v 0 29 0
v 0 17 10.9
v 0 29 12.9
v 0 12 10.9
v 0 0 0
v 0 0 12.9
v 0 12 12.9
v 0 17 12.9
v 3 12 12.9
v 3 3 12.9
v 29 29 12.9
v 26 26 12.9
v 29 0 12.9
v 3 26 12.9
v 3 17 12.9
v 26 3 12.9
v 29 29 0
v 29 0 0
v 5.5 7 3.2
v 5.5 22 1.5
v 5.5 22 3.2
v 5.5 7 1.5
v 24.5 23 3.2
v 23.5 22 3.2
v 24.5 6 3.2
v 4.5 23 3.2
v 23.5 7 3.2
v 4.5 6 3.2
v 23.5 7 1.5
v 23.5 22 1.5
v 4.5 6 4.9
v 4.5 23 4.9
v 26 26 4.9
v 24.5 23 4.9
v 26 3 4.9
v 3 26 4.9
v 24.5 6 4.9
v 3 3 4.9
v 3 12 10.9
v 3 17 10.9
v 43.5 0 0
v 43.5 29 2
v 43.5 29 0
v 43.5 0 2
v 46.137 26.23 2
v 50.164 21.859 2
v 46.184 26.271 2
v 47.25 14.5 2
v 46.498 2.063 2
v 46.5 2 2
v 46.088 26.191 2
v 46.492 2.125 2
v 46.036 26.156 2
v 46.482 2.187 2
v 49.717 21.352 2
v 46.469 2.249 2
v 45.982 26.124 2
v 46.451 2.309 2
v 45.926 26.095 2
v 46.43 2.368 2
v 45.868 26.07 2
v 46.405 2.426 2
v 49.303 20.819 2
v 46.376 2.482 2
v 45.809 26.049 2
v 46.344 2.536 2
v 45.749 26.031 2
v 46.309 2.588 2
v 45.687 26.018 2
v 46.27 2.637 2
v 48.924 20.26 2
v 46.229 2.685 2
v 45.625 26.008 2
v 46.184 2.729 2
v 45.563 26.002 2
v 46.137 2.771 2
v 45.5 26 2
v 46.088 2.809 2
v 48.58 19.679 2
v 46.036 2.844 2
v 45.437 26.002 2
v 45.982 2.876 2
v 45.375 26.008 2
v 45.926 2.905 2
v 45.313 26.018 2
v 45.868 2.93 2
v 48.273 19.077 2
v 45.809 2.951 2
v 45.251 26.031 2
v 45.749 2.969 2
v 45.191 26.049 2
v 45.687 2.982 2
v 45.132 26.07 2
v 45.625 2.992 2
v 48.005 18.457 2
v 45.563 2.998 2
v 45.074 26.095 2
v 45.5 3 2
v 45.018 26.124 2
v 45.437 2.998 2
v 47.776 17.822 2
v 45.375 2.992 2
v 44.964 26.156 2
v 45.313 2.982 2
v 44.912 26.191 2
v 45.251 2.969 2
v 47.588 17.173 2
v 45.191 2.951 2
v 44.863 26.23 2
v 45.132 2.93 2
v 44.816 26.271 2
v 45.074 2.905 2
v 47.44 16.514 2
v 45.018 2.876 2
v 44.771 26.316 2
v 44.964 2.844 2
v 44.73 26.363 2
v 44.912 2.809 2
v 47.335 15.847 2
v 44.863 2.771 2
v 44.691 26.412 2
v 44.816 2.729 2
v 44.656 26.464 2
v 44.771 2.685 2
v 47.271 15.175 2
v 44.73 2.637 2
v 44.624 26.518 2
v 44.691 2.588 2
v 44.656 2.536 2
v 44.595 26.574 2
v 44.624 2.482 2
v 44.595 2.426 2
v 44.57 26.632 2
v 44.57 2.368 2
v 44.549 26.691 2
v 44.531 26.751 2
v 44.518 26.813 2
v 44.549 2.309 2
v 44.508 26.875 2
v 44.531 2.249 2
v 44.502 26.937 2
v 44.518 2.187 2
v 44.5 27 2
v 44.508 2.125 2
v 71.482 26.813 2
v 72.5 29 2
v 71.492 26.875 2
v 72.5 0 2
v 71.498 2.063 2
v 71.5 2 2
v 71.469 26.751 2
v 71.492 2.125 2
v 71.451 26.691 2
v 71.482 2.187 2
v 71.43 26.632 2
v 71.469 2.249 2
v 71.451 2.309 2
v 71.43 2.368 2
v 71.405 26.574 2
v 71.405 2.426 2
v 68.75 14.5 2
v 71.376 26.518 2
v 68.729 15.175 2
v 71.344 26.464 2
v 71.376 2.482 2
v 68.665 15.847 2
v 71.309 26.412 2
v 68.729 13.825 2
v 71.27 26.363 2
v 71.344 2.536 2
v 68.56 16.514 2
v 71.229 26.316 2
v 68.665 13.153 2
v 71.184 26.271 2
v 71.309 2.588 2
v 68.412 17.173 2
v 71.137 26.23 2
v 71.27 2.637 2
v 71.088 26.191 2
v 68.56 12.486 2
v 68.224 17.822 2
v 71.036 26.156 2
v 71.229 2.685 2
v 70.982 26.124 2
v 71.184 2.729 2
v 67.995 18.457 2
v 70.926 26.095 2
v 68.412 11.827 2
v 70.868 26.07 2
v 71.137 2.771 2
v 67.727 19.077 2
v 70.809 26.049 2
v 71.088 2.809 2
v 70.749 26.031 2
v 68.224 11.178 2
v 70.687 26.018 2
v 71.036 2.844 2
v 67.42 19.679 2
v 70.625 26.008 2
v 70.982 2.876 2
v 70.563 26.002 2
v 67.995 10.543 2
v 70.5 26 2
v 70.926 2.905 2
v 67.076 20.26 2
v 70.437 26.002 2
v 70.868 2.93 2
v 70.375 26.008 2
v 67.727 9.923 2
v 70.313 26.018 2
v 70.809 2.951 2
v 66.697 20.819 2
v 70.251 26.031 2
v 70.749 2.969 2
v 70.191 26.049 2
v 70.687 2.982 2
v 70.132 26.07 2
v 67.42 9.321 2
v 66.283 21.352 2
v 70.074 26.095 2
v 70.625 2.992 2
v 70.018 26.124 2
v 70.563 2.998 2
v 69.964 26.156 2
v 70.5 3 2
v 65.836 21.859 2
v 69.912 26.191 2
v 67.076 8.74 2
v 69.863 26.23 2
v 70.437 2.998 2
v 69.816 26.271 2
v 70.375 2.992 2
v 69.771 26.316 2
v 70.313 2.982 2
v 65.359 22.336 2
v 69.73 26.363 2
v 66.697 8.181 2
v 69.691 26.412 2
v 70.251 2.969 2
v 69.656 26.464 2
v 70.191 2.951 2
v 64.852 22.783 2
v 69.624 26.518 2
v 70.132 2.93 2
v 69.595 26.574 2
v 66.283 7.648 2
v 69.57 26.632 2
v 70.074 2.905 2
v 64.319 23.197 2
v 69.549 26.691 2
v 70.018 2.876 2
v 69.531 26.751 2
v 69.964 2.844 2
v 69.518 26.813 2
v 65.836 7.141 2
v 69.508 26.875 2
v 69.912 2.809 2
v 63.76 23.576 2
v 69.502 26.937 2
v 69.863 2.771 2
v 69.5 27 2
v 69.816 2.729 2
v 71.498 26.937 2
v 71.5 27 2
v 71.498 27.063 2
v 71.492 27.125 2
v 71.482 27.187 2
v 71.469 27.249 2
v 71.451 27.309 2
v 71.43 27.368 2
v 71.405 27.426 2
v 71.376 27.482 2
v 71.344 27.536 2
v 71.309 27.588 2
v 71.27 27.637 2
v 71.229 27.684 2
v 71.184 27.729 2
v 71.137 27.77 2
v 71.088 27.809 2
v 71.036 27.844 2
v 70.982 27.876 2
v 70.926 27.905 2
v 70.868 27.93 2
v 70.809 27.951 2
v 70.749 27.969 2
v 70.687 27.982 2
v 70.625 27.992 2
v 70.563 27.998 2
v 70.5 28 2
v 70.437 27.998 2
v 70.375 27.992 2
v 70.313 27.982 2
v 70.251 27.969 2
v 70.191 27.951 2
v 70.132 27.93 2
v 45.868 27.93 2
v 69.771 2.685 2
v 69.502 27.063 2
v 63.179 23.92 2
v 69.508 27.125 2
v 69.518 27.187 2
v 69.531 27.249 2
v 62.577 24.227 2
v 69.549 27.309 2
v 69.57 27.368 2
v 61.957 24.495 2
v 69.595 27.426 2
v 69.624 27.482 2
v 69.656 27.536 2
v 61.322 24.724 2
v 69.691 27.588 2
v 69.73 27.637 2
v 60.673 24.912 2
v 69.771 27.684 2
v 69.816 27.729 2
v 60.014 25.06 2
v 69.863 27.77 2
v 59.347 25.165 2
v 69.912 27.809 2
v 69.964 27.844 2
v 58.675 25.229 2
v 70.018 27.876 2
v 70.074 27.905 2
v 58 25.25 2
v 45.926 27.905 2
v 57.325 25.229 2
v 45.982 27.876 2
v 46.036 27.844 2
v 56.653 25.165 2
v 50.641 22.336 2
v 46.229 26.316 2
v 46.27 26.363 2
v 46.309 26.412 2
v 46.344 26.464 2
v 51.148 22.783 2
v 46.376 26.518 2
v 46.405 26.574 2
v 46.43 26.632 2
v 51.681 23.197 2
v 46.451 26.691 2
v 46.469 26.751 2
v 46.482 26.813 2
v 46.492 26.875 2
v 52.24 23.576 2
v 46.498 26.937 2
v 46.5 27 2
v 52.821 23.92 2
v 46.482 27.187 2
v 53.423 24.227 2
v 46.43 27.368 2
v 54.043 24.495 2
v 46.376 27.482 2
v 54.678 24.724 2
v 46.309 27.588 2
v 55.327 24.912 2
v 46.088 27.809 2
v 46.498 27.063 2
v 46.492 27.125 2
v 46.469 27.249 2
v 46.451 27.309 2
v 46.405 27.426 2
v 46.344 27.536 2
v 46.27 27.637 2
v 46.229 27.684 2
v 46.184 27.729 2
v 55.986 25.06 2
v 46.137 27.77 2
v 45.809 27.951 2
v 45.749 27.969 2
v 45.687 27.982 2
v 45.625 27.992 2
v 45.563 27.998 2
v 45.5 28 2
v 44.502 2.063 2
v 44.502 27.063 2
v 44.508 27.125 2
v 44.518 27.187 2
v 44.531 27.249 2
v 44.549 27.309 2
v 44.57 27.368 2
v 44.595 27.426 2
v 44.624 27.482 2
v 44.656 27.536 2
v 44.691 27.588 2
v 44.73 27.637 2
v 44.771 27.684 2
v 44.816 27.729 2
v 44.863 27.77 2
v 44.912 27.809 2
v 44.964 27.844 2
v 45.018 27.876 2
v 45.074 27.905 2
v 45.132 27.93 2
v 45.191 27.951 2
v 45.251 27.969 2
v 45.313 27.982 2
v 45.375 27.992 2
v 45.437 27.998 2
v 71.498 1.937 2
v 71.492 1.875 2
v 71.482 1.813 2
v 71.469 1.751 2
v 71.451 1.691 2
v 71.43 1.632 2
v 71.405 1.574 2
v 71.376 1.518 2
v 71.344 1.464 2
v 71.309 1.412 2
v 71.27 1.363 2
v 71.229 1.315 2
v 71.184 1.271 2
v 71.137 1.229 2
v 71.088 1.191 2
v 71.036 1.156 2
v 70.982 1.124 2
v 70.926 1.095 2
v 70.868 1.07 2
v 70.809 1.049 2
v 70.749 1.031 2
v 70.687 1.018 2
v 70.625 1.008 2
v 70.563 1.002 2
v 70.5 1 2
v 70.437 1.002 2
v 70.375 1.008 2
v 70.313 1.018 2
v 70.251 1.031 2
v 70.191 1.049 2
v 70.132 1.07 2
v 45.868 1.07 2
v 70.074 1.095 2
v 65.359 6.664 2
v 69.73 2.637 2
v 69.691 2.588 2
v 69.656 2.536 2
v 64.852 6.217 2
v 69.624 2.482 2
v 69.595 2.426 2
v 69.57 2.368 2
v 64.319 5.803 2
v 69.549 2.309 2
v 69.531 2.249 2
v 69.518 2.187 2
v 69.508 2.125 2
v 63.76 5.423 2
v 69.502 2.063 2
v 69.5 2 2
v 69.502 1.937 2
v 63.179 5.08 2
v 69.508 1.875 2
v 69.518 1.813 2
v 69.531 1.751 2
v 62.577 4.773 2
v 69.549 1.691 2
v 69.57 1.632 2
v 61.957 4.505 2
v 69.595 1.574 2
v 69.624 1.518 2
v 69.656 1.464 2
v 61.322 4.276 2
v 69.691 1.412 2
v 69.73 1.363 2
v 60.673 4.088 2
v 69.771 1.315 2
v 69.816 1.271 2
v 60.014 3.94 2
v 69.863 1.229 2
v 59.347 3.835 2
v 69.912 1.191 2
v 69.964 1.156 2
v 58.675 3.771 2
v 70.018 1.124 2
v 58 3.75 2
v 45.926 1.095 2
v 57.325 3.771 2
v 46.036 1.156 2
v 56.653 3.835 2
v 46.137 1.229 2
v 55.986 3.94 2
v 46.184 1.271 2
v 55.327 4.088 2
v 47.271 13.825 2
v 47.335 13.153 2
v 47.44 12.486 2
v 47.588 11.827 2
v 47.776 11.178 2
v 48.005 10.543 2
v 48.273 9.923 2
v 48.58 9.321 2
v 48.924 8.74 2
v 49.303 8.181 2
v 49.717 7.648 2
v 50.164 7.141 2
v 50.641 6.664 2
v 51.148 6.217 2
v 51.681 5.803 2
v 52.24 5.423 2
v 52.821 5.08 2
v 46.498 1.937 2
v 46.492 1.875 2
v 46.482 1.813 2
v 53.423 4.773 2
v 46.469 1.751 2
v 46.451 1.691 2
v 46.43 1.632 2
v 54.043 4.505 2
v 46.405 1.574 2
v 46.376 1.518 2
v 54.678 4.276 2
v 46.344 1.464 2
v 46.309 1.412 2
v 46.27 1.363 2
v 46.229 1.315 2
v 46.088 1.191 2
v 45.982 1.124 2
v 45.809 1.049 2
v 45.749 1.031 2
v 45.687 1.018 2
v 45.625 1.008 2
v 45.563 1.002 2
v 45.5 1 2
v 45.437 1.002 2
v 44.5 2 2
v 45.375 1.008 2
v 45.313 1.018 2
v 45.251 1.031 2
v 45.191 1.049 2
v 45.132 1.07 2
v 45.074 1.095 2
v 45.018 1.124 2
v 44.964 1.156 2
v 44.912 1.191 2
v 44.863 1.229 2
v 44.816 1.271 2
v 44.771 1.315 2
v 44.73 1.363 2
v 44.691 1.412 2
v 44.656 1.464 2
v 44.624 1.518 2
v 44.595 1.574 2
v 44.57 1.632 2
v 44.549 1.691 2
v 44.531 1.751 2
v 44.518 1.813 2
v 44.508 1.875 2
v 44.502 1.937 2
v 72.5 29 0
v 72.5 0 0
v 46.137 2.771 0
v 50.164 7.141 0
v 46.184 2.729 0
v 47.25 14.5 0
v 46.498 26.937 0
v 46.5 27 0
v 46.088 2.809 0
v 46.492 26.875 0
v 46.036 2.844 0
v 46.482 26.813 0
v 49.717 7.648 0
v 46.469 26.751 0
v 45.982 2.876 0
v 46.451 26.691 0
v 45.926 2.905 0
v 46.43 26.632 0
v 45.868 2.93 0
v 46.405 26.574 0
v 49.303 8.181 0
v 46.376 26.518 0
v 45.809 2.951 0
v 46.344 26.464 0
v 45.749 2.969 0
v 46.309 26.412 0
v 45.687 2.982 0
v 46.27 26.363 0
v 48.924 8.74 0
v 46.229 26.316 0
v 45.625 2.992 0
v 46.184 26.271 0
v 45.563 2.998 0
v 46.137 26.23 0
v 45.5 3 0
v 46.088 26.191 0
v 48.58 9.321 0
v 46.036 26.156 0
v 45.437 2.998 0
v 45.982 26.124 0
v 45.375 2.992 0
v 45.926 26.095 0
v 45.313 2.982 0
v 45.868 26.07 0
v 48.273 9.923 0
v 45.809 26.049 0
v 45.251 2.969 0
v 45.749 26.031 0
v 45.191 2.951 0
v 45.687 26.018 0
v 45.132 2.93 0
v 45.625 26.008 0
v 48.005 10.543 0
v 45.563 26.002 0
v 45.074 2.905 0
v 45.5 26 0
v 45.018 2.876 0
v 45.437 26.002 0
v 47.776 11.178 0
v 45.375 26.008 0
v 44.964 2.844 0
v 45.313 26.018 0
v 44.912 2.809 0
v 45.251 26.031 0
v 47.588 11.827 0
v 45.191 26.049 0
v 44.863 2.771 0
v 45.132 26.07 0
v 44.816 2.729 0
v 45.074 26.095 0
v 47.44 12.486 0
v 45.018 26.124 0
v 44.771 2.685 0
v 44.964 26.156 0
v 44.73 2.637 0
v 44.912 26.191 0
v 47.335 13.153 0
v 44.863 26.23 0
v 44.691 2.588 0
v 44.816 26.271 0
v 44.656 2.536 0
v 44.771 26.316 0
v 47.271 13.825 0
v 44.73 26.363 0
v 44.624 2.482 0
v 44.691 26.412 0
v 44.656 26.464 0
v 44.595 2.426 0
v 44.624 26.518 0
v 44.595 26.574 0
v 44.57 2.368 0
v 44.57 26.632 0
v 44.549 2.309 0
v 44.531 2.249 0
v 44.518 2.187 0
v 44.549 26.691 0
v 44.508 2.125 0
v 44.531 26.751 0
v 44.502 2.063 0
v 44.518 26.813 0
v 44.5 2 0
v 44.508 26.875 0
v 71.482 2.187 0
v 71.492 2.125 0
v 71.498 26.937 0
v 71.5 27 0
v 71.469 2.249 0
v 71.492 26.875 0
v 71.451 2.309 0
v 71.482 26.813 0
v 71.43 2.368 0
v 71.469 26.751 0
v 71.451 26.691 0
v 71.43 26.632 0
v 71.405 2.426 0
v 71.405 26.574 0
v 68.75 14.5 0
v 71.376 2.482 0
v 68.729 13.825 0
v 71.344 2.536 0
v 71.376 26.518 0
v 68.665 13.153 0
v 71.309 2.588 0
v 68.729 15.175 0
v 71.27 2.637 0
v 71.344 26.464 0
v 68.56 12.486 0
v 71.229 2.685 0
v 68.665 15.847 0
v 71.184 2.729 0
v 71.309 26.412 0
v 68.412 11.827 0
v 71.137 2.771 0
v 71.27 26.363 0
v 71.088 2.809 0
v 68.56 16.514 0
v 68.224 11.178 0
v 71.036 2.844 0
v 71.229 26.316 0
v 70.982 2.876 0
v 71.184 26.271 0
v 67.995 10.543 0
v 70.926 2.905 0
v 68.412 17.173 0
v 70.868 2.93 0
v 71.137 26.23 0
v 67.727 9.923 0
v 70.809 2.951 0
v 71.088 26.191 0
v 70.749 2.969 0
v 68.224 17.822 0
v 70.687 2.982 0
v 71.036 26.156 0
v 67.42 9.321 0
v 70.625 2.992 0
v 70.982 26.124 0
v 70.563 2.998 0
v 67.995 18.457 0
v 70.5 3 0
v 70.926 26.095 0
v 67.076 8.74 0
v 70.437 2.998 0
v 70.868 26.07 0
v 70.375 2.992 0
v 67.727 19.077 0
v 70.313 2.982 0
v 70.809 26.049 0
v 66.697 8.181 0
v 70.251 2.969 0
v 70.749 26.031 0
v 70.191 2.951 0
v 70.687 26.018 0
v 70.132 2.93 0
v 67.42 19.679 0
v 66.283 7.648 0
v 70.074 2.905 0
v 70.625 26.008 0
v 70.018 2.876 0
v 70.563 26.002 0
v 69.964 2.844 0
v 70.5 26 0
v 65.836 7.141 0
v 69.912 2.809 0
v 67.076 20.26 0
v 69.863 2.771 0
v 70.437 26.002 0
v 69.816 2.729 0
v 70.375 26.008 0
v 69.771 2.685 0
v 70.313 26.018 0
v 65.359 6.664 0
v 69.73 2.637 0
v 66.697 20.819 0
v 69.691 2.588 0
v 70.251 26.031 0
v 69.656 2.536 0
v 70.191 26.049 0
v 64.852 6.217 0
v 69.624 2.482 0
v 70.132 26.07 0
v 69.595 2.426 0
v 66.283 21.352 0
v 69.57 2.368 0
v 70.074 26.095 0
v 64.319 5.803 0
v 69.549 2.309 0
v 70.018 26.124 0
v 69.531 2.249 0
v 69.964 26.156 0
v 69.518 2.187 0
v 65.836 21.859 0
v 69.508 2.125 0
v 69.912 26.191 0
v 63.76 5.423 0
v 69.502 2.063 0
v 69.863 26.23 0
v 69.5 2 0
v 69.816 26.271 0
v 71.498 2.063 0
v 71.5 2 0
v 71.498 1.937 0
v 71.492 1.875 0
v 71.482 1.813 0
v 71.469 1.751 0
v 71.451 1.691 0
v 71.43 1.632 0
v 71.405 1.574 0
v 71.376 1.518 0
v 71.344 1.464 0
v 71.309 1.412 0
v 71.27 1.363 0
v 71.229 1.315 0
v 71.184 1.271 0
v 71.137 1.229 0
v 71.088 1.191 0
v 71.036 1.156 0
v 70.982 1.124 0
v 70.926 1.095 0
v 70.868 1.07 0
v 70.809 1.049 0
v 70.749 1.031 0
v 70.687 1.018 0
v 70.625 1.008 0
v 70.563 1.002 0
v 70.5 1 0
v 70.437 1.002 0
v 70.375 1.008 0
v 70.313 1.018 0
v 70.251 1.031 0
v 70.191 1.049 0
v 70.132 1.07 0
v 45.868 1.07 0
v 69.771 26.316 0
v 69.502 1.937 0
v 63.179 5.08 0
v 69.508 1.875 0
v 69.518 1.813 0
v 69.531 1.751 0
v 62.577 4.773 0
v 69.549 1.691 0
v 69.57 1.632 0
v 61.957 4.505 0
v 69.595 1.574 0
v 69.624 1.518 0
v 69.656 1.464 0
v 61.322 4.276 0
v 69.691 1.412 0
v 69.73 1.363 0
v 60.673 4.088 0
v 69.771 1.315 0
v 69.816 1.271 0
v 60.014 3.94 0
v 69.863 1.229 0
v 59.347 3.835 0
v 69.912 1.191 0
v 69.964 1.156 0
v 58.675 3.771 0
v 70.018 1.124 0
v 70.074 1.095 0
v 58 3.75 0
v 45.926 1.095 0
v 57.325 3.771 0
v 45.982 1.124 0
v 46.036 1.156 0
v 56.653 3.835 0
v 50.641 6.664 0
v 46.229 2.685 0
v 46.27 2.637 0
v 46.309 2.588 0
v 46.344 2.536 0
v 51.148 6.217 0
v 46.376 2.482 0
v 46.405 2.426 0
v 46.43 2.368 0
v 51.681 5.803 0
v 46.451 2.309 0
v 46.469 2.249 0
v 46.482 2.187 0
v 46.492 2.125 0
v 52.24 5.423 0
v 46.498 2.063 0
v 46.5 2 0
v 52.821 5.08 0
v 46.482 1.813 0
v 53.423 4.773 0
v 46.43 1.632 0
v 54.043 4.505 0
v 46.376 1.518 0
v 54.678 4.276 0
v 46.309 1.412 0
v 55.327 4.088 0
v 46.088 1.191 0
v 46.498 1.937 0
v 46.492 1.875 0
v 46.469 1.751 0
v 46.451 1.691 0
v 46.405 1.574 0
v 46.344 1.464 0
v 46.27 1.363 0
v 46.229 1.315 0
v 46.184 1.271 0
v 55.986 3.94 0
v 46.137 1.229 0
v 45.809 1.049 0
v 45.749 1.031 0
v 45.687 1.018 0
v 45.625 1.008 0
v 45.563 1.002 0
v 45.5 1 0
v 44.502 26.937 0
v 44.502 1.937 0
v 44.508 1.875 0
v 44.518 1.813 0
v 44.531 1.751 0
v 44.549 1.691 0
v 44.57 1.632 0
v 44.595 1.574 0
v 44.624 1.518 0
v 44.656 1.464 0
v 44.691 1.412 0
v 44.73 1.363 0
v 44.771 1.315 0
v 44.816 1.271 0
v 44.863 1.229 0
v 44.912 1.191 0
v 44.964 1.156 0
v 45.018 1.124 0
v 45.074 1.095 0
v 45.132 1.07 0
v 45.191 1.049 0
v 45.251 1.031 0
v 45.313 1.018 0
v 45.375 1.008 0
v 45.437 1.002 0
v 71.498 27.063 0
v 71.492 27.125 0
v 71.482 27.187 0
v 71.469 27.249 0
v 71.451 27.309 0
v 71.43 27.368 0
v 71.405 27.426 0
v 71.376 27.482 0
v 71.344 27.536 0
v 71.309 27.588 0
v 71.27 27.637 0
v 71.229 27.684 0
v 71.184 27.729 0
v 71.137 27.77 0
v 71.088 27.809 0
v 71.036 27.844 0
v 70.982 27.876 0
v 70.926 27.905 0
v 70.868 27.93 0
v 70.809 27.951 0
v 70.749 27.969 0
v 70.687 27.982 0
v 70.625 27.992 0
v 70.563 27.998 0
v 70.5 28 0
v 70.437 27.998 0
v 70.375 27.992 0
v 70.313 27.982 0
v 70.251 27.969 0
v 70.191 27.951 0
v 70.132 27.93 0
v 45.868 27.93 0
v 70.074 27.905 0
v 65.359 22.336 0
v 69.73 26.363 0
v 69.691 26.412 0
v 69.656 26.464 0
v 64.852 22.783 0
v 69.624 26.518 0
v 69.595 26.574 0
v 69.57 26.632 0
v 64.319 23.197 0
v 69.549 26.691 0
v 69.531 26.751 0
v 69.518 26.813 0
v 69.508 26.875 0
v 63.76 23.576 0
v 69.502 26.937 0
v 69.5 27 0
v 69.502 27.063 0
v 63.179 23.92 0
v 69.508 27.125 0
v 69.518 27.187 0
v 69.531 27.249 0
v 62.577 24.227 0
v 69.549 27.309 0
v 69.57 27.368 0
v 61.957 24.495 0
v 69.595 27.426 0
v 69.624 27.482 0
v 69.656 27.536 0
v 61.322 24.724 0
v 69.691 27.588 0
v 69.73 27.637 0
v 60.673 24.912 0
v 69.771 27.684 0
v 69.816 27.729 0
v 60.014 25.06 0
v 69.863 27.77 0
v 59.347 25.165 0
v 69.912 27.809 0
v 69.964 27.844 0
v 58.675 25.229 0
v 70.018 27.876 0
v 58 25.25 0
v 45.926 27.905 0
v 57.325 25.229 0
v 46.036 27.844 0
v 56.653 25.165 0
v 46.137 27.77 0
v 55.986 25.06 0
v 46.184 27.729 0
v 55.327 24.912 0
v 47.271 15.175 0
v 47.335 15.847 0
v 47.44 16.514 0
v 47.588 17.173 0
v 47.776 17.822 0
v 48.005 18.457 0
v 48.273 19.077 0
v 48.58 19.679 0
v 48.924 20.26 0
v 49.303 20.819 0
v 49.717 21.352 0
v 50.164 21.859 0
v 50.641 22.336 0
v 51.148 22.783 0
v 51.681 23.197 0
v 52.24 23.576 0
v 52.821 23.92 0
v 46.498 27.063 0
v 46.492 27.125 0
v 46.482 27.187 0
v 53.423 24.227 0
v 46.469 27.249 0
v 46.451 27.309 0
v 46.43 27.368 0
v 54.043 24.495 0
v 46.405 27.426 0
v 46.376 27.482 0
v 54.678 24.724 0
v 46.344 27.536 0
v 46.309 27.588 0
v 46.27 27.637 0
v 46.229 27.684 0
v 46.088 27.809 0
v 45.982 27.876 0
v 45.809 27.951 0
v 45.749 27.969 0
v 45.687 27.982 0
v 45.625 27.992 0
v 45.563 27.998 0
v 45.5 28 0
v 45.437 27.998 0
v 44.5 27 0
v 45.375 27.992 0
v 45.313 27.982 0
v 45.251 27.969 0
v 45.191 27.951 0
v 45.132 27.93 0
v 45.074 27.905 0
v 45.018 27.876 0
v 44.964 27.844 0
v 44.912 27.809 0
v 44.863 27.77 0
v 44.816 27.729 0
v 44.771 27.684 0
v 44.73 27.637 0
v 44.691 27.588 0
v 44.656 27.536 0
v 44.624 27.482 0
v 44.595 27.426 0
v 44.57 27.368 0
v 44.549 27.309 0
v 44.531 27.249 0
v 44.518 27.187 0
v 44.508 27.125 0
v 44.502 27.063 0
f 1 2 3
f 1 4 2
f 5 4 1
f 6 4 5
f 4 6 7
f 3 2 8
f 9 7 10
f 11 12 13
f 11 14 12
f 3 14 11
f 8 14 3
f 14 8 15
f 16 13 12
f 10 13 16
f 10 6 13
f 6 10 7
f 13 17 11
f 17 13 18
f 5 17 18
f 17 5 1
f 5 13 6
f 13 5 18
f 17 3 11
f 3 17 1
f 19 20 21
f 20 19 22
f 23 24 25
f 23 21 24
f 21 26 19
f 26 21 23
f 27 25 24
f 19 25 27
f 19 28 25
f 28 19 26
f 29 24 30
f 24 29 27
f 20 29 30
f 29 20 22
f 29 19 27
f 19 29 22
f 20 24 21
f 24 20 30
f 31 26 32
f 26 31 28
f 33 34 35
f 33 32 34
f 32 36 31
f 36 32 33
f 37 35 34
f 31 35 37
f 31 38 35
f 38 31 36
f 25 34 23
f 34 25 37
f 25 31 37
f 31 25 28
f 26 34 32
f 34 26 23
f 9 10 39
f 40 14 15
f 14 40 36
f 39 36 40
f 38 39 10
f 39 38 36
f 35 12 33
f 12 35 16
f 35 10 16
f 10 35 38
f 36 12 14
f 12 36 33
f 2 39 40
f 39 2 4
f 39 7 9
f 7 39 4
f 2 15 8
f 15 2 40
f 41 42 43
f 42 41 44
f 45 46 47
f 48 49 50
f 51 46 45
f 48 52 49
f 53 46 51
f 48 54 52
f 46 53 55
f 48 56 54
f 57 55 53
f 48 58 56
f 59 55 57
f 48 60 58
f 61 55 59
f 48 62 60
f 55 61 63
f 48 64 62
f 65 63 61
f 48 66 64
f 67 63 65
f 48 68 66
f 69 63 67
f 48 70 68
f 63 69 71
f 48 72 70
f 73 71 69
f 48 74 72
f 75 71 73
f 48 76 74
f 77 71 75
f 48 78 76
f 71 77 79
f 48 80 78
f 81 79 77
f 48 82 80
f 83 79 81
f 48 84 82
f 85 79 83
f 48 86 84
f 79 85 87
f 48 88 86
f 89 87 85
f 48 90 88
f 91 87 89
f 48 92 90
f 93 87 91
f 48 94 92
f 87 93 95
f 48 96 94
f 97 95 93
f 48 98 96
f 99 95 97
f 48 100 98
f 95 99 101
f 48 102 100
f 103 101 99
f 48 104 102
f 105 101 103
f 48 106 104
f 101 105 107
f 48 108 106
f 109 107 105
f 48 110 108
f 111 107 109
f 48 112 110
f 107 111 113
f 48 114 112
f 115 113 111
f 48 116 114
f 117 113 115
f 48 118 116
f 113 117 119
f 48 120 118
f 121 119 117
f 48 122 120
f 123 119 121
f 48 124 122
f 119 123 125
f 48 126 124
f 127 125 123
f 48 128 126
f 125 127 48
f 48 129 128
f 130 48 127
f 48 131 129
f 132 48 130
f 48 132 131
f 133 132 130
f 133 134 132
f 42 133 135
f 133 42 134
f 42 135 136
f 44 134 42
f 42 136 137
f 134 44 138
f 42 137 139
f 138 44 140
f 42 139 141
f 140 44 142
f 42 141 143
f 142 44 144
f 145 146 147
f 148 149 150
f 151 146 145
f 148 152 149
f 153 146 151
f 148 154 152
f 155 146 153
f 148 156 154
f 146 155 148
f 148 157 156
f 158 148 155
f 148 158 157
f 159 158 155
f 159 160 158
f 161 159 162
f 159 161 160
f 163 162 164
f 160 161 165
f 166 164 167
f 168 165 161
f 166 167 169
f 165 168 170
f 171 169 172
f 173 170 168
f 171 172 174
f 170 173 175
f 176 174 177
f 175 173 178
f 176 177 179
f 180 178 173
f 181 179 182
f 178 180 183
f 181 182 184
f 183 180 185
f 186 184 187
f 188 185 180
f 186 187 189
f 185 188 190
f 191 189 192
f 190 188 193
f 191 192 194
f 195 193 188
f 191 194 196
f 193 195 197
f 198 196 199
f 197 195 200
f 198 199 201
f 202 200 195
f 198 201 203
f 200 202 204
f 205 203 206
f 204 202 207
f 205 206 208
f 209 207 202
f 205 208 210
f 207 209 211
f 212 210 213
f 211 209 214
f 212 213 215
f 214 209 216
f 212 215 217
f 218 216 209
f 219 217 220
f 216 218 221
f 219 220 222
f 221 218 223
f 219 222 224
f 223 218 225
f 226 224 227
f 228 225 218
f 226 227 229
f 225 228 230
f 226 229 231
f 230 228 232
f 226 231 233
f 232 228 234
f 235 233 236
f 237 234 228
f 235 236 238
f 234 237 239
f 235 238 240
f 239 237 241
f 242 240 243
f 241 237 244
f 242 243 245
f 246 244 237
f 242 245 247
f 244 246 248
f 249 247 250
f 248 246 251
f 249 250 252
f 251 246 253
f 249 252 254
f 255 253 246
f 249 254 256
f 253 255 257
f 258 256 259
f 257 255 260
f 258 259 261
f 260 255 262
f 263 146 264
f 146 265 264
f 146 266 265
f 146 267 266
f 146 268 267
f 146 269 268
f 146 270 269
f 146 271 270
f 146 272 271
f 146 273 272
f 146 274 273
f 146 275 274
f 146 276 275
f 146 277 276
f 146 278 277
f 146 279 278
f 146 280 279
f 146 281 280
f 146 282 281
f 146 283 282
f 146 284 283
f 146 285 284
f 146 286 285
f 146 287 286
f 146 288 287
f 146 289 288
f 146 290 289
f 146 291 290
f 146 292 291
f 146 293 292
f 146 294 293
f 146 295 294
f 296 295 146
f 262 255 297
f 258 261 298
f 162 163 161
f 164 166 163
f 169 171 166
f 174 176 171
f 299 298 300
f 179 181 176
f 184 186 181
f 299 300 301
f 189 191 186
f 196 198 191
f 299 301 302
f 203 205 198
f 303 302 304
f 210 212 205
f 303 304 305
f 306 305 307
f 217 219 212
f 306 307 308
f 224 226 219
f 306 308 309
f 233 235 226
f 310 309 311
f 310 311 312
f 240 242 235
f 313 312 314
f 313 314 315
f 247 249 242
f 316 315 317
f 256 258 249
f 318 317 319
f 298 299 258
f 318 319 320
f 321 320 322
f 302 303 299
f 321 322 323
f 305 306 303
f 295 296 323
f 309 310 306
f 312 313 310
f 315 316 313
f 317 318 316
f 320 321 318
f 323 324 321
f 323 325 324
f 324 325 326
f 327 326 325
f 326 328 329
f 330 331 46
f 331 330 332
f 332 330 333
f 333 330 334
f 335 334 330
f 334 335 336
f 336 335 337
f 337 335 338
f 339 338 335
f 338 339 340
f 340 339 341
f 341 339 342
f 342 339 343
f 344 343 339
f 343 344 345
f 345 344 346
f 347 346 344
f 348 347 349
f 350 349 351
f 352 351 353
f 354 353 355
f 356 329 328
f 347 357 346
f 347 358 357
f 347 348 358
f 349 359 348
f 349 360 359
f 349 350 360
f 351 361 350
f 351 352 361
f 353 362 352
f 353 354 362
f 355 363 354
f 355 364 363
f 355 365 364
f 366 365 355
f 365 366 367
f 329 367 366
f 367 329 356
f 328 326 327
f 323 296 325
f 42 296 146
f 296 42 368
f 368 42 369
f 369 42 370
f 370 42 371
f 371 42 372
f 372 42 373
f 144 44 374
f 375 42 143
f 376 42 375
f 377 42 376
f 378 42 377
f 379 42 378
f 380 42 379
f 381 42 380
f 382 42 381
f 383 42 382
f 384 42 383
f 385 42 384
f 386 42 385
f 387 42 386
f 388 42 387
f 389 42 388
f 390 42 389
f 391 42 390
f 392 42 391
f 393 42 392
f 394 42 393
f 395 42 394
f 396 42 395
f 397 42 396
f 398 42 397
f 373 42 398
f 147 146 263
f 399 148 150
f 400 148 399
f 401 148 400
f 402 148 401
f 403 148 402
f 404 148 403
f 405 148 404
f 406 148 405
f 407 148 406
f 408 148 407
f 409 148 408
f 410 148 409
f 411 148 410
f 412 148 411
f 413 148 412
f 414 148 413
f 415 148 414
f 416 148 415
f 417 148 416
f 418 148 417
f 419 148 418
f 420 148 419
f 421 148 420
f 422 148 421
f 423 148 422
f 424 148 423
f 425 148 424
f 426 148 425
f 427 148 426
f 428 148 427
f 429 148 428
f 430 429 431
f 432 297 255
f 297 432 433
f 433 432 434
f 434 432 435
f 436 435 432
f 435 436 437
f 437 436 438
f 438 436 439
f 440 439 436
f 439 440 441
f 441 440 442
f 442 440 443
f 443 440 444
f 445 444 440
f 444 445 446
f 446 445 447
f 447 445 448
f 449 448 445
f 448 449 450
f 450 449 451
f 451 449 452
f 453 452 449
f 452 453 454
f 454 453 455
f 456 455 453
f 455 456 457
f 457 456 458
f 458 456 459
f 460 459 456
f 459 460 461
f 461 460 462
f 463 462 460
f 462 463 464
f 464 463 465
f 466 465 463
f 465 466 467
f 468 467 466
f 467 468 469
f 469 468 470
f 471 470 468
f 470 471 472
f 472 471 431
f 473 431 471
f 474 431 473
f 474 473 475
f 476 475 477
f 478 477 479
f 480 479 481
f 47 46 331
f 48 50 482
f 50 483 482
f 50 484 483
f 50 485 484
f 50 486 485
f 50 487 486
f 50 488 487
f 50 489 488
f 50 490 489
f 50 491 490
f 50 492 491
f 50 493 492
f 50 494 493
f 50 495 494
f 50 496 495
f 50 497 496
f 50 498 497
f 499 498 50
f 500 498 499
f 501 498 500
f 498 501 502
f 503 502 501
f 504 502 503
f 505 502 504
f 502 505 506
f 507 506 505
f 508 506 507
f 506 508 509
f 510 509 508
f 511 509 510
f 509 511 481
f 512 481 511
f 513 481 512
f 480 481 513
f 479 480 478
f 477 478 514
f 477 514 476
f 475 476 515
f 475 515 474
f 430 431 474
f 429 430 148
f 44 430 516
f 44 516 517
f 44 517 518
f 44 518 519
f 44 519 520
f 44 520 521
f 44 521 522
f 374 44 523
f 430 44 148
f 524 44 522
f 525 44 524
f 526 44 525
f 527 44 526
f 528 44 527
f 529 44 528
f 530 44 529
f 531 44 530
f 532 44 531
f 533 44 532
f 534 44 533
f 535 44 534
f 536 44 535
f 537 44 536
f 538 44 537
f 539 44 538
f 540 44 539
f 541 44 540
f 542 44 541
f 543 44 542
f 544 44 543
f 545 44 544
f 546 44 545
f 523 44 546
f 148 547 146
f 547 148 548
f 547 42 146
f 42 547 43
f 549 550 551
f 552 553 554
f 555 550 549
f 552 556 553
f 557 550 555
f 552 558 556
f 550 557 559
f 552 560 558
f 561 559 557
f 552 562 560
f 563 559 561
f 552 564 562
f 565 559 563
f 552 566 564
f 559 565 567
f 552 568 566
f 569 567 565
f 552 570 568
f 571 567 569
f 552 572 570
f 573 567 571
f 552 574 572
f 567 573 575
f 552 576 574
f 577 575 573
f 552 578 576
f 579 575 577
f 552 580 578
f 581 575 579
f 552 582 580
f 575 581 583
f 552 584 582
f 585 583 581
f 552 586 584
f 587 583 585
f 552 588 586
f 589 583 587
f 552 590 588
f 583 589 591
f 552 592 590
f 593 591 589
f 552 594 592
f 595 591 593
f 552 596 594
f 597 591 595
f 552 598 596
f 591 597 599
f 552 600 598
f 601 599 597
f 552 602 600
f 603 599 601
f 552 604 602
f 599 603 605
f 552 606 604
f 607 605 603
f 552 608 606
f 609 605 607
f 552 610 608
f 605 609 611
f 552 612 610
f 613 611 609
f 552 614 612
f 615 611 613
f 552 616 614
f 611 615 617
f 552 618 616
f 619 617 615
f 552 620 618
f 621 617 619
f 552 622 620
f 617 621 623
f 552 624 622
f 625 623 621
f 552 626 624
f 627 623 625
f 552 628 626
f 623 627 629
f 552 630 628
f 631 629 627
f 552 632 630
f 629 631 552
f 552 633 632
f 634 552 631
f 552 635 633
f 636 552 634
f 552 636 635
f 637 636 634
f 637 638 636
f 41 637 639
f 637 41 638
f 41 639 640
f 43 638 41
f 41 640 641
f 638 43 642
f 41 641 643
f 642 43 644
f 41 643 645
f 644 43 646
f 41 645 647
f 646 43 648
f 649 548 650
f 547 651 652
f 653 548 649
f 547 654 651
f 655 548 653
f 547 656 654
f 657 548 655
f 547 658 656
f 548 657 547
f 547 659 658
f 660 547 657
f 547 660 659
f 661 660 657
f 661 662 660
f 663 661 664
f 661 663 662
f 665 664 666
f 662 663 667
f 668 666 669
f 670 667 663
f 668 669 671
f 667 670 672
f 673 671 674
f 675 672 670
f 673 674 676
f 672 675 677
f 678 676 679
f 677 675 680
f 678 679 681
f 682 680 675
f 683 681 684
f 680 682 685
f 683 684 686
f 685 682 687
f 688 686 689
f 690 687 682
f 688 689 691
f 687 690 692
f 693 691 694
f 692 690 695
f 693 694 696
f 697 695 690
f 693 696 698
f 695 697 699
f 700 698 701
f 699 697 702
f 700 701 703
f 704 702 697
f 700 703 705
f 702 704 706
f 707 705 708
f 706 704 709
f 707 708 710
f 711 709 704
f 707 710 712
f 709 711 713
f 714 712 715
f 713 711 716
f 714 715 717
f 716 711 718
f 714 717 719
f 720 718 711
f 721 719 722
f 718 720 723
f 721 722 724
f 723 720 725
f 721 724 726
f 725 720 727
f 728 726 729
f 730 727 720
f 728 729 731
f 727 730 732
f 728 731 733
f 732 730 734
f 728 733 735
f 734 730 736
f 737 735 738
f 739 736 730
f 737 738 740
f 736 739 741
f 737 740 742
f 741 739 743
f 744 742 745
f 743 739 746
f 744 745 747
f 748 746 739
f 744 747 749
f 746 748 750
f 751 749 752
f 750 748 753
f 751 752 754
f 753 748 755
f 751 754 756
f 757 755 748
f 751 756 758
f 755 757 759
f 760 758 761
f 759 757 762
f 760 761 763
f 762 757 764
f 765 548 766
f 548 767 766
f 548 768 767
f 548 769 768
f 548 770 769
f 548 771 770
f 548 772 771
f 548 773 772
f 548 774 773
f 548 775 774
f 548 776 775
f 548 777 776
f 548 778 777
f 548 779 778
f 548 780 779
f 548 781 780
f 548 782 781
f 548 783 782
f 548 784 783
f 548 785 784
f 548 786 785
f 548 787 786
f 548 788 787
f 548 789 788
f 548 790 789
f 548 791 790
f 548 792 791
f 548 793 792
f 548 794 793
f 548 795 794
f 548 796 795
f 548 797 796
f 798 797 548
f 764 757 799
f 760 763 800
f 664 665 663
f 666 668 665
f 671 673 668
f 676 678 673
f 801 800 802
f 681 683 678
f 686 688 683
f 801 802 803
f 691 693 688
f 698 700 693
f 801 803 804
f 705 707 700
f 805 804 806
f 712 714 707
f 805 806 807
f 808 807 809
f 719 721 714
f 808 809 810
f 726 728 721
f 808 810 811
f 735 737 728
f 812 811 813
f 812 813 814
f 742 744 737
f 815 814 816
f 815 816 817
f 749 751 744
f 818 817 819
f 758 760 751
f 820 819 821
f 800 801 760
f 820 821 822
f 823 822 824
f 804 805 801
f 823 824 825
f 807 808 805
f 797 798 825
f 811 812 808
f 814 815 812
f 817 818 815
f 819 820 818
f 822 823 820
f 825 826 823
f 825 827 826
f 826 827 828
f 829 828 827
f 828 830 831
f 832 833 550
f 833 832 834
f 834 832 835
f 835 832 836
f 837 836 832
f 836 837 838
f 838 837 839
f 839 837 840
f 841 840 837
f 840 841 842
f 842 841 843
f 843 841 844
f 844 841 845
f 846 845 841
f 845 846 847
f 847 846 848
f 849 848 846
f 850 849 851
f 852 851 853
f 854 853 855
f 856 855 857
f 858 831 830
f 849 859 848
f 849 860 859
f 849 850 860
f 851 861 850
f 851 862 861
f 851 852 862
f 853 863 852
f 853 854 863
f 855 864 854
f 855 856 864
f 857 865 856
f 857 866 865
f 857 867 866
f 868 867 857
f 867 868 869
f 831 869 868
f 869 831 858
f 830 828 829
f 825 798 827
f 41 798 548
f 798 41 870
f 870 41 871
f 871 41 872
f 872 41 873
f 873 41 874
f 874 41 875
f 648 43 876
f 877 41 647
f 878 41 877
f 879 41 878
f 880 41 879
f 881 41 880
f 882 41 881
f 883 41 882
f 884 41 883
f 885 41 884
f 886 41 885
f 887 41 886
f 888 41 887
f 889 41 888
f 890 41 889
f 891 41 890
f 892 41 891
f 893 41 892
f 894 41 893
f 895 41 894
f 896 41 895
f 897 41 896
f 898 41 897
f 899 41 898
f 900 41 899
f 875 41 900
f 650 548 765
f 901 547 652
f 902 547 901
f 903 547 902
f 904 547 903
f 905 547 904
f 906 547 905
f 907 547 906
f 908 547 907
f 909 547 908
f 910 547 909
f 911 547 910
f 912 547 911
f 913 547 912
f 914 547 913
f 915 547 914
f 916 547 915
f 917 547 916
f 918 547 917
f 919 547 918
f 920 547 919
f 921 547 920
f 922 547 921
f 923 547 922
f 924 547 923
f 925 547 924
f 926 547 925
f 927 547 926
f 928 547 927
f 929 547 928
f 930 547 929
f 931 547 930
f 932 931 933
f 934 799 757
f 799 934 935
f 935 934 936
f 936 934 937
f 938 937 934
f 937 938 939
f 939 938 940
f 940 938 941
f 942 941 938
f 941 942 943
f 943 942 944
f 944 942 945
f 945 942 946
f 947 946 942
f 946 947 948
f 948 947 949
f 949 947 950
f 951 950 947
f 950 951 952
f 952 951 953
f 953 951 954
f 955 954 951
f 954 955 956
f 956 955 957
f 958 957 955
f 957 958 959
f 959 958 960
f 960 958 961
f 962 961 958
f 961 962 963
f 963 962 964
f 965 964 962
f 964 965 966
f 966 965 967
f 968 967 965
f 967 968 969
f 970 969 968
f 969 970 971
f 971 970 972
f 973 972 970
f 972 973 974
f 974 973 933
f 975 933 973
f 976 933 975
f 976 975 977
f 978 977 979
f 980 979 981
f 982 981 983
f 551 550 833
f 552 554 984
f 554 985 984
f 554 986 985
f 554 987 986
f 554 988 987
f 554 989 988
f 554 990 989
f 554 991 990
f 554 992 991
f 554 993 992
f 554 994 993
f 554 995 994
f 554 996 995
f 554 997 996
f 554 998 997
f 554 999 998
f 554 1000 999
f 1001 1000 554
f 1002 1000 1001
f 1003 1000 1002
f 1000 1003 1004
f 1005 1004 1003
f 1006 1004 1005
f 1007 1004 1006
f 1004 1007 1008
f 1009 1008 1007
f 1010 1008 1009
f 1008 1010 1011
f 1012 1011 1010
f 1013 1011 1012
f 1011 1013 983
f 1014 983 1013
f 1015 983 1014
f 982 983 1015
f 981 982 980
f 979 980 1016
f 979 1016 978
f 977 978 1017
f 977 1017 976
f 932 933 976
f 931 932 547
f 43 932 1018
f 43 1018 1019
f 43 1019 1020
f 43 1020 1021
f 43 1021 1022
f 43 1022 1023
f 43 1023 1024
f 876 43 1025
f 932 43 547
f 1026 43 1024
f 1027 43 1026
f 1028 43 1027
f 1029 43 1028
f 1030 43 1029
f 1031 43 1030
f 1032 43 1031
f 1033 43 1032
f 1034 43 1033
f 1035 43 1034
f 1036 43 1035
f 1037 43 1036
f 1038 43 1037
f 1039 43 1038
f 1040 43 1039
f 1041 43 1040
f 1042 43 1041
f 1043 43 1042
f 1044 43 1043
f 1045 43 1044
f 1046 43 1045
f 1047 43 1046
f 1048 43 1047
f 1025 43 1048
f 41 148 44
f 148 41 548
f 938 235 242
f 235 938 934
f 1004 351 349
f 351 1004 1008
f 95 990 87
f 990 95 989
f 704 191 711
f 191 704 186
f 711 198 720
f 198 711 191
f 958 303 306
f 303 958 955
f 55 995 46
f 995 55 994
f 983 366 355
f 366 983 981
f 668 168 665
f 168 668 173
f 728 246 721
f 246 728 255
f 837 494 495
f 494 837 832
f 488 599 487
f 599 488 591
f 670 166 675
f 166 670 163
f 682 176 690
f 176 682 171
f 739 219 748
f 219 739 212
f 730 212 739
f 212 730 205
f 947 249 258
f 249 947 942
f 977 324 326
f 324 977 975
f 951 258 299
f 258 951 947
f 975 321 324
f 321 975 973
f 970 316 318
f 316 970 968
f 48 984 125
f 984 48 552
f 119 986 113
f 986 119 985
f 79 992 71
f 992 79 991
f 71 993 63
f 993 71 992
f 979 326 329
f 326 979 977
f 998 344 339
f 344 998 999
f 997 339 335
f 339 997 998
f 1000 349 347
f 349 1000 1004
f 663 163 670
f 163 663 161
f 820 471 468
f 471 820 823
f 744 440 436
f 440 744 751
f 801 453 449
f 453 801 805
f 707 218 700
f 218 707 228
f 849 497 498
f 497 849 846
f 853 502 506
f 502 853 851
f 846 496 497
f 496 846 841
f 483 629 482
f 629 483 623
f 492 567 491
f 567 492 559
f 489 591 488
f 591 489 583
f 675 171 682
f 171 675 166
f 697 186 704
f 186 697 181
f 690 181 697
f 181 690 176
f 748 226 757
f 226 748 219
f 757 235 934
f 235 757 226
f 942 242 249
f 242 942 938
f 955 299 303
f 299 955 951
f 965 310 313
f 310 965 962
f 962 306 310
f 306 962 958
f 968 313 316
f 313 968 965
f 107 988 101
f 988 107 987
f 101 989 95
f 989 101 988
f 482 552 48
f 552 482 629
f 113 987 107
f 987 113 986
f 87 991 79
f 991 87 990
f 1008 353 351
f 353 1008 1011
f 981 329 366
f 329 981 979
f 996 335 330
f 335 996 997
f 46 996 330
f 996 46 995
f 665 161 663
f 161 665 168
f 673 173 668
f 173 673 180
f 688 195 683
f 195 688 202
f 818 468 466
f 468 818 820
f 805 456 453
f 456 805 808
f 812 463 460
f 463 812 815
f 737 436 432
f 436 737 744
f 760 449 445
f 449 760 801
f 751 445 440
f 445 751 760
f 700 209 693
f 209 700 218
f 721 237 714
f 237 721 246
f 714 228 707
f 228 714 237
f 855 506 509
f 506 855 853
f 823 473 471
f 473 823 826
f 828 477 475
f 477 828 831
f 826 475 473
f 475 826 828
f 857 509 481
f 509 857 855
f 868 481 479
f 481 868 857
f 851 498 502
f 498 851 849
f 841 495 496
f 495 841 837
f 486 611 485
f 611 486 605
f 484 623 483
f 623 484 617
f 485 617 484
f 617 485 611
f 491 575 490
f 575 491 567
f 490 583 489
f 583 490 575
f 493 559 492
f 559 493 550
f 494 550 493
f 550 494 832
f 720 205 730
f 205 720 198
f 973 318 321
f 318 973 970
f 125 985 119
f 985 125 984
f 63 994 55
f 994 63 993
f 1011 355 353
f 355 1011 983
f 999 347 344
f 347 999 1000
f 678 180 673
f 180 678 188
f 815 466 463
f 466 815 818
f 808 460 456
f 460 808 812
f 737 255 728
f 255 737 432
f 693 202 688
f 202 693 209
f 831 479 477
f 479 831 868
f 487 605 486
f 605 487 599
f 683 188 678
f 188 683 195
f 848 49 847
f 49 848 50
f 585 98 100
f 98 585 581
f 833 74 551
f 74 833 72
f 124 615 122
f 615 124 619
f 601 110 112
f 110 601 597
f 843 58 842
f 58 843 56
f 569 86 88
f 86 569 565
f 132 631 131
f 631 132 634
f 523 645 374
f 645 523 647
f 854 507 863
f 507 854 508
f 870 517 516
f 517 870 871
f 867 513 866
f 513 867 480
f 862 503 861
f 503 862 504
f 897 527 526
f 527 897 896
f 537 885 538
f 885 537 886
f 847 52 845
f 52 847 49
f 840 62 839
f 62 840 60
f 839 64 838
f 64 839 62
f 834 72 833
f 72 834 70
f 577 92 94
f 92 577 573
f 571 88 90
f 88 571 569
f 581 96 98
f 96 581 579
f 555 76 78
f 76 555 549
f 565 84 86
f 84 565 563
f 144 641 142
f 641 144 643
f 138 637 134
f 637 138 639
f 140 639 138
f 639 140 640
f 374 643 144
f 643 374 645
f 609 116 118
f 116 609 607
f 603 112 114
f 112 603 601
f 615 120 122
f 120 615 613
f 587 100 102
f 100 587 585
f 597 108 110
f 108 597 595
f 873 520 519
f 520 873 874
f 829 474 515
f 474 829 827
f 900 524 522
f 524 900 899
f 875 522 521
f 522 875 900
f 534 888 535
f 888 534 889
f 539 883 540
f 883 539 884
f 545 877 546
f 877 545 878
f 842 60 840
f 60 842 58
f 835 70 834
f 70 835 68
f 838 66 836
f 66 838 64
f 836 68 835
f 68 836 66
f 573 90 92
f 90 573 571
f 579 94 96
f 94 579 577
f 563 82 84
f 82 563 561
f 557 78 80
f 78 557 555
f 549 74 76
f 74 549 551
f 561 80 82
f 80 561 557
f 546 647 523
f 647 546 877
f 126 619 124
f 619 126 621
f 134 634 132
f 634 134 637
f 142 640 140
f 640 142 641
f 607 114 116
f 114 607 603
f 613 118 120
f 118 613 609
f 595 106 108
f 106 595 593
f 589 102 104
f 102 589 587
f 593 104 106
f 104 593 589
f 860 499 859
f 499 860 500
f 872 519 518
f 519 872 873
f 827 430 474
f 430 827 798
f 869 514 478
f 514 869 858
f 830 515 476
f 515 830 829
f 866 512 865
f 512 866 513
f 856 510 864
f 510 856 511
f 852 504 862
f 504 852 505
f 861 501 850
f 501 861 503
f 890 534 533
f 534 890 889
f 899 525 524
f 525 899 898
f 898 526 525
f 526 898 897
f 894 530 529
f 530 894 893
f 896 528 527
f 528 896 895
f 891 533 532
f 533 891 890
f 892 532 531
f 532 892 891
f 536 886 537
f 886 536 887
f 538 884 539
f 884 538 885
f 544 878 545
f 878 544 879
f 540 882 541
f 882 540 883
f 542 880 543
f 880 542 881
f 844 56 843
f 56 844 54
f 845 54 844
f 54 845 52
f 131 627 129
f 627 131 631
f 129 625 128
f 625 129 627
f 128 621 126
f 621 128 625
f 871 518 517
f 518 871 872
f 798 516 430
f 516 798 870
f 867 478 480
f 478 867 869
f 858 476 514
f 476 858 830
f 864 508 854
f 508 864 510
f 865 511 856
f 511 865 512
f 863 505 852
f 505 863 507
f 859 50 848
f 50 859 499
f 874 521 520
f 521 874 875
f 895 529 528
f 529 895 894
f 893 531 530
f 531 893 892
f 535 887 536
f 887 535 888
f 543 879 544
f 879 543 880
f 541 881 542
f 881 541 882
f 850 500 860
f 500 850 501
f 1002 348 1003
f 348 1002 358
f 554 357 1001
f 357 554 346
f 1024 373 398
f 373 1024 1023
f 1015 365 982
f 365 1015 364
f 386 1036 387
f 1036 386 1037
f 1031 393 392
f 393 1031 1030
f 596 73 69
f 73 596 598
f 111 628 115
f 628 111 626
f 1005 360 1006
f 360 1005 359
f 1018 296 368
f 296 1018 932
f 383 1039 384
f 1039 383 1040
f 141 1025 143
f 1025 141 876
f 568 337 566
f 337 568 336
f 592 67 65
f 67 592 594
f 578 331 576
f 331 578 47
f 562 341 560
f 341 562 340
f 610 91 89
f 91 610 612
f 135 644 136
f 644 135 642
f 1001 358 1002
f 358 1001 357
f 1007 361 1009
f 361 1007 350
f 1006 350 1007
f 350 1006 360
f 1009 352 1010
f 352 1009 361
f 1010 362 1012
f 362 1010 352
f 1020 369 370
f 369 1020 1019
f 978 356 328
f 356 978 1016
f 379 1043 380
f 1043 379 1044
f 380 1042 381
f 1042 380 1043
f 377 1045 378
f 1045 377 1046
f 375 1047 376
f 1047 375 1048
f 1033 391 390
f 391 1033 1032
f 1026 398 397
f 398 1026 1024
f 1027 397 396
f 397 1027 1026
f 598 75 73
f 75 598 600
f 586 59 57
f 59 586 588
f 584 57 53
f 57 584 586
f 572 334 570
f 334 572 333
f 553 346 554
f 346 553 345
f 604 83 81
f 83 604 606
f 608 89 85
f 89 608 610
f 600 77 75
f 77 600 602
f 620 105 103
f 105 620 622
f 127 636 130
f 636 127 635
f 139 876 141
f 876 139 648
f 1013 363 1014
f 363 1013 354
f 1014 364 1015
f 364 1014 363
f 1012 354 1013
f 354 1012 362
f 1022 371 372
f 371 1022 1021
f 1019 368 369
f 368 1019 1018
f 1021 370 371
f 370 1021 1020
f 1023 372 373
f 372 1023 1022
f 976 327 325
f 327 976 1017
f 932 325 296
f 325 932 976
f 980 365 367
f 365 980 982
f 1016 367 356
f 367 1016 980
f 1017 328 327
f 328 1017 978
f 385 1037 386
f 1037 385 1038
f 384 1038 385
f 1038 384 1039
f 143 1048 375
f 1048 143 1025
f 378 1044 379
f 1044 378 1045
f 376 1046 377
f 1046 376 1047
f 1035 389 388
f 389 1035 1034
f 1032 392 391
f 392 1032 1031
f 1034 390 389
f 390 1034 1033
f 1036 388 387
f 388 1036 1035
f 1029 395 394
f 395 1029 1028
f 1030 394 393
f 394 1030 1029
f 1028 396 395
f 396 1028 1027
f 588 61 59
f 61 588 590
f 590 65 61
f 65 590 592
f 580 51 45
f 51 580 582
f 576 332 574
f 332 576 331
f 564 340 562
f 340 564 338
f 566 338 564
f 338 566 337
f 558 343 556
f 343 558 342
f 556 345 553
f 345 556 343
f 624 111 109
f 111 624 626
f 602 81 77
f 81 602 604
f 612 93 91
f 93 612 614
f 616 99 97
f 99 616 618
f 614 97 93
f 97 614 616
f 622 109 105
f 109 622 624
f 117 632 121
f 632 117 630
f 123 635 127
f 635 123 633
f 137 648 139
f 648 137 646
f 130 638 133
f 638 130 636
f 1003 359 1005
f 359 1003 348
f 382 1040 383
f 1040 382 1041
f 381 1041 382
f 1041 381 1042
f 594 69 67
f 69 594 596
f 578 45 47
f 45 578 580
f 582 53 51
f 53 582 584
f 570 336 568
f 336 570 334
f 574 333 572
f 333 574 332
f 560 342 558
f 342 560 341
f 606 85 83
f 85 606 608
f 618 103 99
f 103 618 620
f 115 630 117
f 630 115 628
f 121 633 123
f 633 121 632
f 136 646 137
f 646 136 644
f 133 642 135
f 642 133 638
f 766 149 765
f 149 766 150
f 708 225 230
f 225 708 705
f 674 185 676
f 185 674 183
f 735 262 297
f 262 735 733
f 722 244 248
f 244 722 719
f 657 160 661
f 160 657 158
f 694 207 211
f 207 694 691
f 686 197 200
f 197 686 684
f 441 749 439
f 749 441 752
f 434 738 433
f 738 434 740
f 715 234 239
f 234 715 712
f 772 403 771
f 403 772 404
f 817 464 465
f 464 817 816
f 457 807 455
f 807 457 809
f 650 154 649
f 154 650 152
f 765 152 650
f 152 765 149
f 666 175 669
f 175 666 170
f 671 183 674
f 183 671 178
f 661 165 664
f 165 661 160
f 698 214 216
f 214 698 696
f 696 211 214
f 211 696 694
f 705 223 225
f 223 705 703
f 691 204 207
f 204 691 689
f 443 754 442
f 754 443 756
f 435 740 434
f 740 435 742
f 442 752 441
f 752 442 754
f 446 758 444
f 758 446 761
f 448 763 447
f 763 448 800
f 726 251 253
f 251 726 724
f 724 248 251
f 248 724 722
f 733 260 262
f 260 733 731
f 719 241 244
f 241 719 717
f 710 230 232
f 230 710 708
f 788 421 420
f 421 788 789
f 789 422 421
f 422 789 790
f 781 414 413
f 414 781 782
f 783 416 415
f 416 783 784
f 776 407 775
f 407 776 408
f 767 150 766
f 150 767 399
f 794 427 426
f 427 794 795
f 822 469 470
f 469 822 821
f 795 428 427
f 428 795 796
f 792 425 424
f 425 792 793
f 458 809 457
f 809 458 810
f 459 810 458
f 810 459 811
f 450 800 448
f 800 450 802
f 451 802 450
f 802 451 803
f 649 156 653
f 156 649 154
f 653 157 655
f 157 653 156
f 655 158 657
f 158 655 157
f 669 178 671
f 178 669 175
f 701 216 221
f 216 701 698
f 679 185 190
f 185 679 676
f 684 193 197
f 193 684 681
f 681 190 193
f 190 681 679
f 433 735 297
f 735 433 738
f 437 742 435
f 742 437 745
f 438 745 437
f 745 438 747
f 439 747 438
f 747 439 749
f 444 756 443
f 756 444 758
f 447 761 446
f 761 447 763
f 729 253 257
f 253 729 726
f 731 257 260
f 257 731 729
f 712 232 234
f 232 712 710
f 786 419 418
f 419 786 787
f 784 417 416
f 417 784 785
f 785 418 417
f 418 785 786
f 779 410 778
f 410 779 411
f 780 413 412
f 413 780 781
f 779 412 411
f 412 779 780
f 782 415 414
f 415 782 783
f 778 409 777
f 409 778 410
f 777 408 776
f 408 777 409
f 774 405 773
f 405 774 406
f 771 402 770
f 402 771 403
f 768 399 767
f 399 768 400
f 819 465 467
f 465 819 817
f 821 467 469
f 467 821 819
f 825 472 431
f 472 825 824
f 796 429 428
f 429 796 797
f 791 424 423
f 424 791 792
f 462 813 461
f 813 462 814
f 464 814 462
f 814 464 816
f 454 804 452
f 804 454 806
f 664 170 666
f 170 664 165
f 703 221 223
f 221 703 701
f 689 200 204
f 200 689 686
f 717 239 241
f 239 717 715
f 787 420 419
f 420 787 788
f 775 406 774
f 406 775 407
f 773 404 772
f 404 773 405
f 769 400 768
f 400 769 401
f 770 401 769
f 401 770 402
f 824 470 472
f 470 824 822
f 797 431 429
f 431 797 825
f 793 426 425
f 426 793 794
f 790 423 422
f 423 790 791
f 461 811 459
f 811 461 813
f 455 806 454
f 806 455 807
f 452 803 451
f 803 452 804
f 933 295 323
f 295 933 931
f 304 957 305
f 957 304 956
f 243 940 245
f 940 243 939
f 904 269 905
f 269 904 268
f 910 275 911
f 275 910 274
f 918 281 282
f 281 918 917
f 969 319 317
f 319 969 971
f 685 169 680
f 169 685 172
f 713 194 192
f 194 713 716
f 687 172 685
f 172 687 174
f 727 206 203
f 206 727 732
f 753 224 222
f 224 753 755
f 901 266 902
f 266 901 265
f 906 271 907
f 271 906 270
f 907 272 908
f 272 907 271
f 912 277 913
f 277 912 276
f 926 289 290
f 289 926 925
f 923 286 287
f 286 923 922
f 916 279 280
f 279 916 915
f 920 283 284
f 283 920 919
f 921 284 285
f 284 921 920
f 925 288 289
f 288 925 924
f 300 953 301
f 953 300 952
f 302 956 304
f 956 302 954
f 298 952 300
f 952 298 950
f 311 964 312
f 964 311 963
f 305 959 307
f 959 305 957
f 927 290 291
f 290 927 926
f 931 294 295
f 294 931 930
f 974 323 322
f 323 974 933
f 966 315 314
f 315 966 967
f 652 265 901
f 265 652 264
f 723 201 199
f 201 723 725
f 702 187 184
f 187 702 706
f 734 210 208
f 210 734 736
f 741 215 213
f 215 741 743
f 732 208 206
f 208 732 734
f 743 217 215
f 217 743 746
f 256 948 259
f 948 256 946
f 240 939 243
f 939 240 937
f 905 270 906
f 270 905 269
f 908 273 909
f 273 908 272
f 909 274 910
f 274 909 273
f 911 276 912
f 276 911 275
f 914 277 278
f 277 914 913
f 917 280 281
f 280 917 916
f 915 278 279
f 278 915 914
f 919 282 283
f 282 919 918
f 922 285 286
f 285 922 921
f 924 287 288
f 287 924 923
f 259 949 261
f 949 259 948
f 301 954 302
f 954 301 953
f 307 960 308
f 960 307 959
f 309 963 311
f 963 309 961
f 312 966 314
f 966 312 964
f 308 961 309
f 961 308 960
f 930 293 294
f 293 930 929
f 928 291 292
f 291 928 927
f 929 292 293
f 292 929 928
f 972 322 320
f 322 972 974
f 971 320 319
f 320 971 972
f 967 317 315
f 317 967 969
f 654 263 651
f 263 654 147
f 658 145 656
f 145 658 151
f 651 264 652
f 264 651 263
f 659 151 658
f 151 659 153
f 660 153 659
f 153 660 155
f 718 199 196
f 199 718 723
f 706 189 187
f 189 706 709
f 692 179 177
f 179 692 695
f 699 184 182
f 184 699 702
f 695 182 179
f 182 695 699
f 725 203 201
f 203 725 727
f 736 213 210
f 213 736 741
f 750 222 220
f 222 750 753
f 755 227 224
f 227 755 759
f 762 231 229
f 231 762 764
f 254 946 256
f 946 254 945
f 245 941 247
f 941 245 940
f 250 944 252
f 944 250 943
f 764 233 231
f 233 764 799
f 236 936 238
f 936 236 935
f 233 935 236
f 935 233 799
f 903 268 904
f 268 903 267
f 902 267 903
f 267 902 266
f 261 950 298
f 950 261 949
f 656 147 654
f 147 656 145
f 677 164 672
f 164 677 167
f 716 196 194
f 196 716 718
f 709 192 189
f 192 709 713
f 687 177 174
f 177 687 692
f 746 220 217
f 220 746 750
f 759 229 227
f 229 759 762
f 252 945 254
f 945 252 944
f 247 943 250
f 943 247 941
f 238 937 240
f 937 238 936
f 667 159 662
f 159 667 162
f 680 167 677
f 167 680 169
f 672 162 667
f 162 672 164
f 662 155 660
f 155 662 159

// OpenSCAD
wallWidth=1;
screwDia=2;


bottomHeight=1.5;
pcbWidthX=20;
pcbWidthY=17;
pcbHeight=1.7;
pcbThreashHold=1;
belowPcpSpace=1.7;

cableHoleHeight=2;
cableHoleWidth=5;

fressnellHeight=8;
fressnellWidth=23;
fressnellDia=21.5;

bottomTotalHeight=bottomHeight+pcbHeight+belowPcpSpace+fressnellHeight;

topHeight=2;

cubeTotalWidth=fressnellWidth + 2 * wallWidth + 2 * screwDia;
totalWallWidth = (cubeTotalWidth - fressnellWidth) / 2;

screwOffset = wallWidth + screwDia / 2;

module bottom() {
  difference() {
     cube([cubeTotalWidth,cubeTotalWidth,bottomTotalHeight]);
  
    // cut out below pcb  
    belowWidthX = pcbWidthX- 2 * pcbThreashHold;
    belowXOffset = (cubeTotalWidth - belowWidthX) / 2; 
    belowWidthY = pcbWidthY- 2 * pcbThreashHold;
    belowYOffset = (cubeTotalWidth - belowWidthY) / 2; 
    translate([belowXOffset,belowYOffset ,bottomHeight]) {
      cube([belowWidthX, belowWidthY, belowPcpSpace ]);
    }
  
    // cut out pcb
    pcbXOffset = (cubeTotalWidth - pcbWidthX) / 2;   
    pcbYOffset = (cubeTotalWidth - pcbWidthY) / 2;   
    translate([pcbXOffset,pcbYOffset,bottomHeight + belowPcpSpace]) {
      cube([pcbWidthX, pcbWidthY, pcbHeight]);
    }
  
    // cut out fresnell
    fressnellOffset = (cubeTotalWidth - fressnellWidth) / 2;     
    translate([fressnellOffset,fressnellOffset,bottomHeight + belowPcpSpace + pcbHeight]) {
      cube([fressnellWidth, fressnellWidth, fressnellHeight]);
    }
    
    // cut out cableHole
    cableHoleYOffset = (cubeTotalWidth - cableHoleWidth) / 2;
    cableHolezOffset = bottomTotalHeight - cableHoleHeight;
    translate([0,cableHoleYOffset,cableHolezOffset]) {
      cube([totalWallWidth,cableHoleWidth,cableHoleHeight]);
    }
  }
}

module top() {
  difference() {
    cube([cubeTotalWidth,cubeTotalWidth,topHeight]);
    
    fressnellOffSet =  (cubeTotalWidth - fressnellWidth) / 2 + fressnellWidth / 2;
    translate([fressnellOffSet ,fressnellOffSet ,0]) {
      cylinder(d=fressnellDia, h = topHeight, $fn = 100);
    }
    
    translate([screwOffset , screwOffset , 0]) {
      cylinder(d=screwDia, h = topHeight, $fn=100);
    }
    translate([screwOffset , cubeTotalWidth - screwOffset , 0]) {
      cylinder(d=screwDia, h = topHeight, $fn=100);
    }
    translate([cubeTotalWidth - screwOffset , screwOffset, 0]) {
      cylinder(d=screwDia, h = topHeight, $fn=100);
    }
    translate([cubeTotalWidth - screwOffset ,cubeTotalWidth - screwOffset, 0]) {
      cylinder(d=screwDia, h = topHeight, $fn=100);
    }
  }  
}

bottom();

translate([cubeTotalWidth + cubeTotalWidth / 2,0,0]) {
  top();
}
